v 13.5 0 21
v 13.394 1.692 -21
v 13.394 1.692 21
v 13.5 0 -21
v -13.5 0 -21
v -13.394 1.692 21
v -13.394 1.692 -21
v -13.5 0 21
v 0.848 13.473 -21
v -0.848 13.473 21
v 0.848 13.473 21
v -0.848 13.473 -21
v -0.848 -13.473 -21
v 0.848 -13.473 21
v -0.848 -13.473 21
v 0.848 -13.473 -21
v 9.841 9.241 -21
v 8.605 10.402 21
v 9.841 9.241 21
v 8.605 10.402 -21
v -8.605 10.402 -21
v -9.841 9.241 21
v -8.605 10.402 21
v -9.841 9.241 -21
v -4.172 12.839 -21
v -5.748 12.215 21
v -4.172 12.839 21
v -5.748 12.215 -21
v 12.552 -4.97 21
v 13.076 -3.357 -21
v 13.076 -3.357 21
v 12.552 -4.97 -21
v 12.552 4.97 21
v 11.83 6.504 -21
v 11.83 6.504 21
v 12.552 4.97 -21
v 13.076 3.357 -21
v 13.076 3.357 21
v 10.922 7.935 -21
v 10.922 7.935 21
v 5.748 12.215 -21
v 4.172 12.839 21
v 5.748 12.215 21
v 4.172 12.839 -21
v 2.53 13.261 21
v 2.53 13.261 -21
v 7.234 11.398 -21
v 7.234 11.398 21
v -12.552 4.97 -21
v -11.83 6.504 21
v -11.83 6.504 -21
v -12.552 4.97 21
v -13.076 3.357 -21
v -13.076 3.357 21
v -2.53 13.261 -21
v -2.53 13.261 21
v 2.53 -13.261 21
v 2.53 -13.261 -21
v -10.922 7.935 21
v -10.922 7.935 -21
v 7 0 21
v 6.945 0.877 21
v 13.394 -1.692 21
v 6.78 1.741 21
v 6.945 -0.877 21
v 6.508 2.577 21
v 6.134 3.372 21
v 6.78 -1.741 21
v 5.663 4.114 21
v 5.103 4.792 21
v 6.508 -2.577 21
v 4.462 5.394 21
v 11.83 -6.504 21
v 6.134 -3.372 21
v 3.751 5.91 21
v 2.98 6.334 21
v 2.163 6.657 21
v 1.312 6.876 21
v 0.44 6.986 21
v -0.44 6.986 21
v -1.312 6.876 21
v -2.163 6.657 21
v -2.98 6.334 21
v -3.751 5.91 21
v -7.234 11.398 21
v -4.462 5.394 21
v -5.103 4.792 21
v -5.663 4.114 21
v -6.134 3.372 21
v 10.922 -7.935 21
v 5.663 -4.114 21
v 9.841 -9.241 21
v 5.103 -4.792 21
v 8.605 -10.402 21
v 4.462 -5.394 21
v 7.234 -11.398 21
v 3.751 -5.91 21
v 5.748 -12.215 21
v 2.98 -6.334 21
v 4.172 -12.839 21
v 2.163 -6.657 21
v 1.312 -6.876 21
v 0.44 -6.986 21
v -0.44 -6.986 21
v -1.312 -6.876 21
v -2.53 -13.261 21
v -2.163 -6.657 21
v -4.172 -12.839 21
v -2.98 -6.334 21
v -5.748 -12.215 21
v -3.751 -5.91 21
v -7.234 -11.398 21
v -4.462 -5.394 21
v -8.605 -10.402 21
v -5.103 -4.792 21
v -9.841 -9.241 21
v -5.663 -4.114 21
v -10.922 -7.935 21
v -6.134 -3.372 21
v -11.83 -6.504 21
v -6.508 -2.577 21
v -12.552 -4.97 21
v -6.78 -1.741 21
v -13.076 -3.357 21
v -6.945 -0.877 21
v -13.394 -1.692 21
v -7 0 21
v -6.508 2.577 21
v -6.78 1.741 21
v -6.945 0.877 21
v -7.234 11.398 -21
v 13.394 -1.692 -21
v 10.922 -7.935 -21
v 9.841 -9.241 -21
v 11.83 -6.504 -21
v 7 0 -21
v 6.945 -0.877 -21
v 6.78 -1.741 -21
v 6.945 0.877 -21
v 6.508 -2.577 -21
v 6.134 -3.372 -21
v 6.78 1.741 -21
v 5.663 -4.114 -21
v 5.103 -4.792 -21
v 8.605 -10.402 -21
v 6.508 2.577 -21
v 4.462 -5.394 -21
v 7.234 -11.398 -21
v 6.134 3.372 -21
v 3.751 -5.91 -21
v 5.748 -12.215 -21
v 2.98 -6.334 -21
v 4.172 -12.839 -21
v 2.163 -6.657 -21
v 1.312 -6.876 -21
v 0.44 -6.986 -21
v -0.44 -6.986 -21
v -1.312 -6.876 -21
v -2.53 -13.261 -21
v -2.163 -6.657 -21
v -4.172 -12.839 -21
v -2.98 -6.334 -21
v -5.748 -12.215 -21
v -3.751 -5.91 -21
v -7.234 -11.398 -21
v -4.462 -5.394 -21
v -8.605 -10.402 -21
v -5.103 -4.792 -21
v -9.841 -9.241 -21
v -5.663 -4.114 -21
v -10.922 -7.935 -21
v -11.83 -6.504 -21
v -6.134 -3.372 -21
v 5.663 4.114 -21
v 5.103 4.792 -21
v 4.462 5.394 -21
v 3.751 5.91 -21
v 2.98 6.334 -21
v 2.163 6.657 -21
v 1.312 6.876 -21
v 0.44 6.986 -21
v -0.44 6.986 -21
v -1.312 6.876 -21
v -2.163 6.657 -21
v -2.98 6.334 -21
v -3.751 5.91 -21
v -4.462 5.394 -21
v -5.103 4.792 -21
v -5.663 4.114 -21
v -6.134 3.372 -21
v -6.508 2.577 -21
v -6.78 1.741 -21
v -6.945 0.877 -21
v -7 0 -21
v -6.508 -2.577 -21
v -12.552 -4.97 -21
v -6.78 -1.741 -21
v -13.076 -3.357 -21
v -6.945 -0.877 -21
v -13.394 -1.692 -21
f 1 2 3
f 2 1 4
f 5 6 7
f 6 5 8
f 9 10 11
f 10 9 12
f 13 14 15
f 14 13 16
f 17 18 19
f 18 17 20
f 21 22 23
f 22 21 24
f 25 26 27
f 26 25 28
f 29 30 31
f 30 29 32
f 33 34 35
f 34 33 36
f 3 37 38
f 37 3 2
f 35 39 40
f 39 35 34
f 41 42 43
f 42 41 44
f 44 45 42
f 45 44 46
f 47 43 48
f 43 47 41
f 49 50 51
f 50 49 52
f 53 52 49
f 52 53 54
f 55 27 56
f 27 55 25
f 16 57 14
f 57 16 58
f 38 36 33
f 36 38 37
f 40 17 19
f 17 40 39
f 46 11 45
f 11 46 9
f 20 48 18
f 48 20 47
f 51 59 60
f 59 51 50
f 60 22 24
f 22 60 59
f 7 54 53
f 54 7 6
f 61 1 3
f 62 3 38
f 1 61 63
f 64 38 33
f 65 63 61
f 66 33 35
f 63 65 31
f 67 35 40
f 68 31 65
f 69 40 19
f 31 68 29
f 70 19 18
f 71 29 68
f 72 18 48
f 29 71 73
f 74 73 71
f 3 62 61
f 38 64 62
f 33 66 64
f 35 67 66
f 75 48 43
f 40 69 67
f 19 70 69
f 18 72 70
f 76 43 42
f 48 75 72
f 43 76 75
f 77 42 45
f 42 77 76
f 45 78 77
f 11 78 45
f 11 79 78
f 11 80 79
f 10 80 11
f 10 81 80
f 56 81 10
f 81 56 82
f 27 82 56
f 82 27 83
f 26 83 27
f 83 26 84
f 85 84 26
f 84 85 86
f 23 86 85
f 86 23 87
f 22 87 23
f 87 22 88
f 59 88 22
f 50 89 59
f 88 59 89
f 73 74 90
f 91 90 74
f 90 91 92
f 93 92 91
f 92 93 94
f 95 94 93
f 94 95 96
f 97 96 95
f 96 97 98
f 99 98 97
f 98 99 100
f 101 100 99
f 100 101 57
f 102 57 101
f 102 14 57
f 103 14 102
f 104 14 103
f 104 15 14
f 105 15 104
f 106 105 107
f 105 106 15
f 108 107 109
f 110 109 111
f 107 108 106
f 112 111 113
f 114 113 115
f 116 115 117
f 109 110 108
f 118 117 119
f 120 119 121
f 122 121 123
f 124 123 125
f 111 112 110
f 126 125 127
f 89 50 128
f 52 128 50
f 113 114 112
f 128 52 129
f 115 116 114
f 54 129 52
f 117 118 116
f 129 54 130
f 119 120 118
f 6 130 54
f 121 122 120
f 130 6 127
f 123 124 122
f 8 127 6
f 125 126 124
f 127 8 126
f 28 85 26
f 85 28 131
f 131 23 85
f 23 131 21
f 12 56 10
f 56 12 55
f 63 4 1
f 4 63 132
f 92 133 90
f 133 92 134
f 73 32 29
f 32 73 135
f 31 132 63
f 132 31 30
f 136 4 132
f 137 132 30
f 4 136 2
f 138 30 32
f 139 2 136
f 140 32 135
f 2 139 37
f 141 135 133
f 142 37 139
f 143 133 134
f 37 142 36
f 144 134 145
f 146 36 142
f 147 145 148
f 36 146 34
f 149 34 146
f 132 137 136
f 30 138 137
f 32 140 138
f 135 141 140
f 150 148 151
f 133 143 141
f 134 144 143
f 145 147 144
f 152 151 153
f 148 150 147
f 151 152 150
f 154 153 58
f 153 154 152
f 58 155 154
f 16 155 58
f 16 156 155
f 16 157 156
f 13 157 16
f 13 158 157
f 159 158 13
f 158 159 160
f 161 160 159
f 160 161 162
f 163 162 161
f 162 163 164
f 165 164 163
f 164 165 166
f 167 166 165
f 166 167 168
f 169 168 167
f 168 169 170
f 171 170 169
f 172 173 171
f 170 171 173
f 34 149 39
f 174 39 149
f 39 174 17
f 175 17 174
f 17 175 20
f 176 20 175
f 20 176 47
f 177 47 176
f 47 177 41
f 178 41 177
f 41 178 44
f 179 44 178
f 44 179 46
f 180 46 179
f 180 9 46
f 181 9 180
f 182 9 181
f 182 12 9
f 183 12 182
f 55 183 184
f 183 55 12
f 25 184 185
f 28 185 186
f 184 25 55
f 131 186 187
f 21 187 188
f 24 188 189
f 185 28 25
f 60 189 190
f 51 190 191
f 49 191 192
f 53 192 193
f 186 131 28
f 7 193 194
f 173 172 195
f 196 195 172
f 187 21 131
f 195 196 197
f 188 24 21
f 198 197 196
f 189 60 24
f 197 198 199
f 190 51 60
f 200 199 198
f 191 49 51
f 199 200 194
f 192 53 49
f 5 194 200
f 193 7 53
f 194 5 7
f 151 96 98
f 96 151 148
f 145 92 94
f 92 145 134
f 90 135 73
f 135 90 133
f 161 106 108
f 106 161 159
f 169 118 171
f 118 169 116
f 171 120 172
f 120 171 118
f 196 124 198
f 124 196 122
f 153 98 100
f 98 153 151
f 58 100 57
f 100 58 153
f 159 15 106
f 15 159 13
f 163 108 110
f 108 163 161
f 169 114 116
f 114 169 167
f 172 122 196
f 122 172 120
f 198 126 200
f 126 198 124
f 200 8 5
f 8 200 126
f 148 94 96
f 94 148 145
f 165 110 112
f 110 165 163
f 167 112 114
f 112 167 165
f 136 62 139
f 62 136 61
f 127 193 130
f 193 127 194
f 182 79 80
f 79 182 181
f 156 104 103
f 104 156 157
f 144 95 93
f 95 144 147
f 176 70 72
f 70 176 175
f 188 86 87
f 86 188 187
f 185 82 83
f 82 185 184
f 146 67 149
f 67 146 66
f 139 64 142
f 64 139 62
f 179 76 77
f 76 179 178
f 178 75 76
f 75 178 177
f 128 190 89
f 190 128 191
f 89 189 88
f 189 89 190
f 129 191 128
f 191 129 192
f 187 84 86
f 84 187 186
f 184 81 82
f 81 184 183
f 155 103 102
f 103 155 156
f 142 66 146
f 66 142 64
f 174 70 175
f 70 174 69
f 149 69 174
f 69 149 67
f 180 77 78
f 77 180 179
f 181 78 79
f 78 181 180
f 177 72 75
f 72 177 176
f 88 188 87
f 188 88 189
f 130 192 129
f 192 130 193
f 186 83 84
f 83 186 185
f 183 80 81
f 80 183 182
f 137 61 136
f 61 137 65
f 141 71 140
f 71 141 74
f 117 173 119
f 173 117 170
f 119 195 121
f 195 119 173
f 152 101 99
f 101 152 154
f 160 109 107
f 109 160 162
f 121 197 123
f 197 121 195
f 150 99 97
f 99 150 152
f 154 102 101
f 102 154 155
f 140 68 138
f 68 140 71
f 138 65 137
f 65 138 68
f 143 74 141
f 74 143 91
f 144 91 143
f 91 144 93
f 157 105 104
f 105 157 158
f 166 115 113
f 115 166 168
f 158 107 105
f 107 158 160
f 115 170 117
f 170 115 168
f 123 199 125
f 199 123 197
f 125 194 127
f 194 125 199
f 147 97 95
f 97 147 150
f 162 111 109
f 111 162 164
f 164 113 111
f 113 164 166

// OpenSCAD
$fn = 50;


difference() {
	union() {
		translate(v = [0, 0, -21.0000000000]) {
			cylinder(h = 42, r = 13.5000000000);
		}
	}
	union() {
		translate(v = [0, 0, -100.0000000000]) {
			cylinder(h = 200, r = 7);
		}
	}
}
